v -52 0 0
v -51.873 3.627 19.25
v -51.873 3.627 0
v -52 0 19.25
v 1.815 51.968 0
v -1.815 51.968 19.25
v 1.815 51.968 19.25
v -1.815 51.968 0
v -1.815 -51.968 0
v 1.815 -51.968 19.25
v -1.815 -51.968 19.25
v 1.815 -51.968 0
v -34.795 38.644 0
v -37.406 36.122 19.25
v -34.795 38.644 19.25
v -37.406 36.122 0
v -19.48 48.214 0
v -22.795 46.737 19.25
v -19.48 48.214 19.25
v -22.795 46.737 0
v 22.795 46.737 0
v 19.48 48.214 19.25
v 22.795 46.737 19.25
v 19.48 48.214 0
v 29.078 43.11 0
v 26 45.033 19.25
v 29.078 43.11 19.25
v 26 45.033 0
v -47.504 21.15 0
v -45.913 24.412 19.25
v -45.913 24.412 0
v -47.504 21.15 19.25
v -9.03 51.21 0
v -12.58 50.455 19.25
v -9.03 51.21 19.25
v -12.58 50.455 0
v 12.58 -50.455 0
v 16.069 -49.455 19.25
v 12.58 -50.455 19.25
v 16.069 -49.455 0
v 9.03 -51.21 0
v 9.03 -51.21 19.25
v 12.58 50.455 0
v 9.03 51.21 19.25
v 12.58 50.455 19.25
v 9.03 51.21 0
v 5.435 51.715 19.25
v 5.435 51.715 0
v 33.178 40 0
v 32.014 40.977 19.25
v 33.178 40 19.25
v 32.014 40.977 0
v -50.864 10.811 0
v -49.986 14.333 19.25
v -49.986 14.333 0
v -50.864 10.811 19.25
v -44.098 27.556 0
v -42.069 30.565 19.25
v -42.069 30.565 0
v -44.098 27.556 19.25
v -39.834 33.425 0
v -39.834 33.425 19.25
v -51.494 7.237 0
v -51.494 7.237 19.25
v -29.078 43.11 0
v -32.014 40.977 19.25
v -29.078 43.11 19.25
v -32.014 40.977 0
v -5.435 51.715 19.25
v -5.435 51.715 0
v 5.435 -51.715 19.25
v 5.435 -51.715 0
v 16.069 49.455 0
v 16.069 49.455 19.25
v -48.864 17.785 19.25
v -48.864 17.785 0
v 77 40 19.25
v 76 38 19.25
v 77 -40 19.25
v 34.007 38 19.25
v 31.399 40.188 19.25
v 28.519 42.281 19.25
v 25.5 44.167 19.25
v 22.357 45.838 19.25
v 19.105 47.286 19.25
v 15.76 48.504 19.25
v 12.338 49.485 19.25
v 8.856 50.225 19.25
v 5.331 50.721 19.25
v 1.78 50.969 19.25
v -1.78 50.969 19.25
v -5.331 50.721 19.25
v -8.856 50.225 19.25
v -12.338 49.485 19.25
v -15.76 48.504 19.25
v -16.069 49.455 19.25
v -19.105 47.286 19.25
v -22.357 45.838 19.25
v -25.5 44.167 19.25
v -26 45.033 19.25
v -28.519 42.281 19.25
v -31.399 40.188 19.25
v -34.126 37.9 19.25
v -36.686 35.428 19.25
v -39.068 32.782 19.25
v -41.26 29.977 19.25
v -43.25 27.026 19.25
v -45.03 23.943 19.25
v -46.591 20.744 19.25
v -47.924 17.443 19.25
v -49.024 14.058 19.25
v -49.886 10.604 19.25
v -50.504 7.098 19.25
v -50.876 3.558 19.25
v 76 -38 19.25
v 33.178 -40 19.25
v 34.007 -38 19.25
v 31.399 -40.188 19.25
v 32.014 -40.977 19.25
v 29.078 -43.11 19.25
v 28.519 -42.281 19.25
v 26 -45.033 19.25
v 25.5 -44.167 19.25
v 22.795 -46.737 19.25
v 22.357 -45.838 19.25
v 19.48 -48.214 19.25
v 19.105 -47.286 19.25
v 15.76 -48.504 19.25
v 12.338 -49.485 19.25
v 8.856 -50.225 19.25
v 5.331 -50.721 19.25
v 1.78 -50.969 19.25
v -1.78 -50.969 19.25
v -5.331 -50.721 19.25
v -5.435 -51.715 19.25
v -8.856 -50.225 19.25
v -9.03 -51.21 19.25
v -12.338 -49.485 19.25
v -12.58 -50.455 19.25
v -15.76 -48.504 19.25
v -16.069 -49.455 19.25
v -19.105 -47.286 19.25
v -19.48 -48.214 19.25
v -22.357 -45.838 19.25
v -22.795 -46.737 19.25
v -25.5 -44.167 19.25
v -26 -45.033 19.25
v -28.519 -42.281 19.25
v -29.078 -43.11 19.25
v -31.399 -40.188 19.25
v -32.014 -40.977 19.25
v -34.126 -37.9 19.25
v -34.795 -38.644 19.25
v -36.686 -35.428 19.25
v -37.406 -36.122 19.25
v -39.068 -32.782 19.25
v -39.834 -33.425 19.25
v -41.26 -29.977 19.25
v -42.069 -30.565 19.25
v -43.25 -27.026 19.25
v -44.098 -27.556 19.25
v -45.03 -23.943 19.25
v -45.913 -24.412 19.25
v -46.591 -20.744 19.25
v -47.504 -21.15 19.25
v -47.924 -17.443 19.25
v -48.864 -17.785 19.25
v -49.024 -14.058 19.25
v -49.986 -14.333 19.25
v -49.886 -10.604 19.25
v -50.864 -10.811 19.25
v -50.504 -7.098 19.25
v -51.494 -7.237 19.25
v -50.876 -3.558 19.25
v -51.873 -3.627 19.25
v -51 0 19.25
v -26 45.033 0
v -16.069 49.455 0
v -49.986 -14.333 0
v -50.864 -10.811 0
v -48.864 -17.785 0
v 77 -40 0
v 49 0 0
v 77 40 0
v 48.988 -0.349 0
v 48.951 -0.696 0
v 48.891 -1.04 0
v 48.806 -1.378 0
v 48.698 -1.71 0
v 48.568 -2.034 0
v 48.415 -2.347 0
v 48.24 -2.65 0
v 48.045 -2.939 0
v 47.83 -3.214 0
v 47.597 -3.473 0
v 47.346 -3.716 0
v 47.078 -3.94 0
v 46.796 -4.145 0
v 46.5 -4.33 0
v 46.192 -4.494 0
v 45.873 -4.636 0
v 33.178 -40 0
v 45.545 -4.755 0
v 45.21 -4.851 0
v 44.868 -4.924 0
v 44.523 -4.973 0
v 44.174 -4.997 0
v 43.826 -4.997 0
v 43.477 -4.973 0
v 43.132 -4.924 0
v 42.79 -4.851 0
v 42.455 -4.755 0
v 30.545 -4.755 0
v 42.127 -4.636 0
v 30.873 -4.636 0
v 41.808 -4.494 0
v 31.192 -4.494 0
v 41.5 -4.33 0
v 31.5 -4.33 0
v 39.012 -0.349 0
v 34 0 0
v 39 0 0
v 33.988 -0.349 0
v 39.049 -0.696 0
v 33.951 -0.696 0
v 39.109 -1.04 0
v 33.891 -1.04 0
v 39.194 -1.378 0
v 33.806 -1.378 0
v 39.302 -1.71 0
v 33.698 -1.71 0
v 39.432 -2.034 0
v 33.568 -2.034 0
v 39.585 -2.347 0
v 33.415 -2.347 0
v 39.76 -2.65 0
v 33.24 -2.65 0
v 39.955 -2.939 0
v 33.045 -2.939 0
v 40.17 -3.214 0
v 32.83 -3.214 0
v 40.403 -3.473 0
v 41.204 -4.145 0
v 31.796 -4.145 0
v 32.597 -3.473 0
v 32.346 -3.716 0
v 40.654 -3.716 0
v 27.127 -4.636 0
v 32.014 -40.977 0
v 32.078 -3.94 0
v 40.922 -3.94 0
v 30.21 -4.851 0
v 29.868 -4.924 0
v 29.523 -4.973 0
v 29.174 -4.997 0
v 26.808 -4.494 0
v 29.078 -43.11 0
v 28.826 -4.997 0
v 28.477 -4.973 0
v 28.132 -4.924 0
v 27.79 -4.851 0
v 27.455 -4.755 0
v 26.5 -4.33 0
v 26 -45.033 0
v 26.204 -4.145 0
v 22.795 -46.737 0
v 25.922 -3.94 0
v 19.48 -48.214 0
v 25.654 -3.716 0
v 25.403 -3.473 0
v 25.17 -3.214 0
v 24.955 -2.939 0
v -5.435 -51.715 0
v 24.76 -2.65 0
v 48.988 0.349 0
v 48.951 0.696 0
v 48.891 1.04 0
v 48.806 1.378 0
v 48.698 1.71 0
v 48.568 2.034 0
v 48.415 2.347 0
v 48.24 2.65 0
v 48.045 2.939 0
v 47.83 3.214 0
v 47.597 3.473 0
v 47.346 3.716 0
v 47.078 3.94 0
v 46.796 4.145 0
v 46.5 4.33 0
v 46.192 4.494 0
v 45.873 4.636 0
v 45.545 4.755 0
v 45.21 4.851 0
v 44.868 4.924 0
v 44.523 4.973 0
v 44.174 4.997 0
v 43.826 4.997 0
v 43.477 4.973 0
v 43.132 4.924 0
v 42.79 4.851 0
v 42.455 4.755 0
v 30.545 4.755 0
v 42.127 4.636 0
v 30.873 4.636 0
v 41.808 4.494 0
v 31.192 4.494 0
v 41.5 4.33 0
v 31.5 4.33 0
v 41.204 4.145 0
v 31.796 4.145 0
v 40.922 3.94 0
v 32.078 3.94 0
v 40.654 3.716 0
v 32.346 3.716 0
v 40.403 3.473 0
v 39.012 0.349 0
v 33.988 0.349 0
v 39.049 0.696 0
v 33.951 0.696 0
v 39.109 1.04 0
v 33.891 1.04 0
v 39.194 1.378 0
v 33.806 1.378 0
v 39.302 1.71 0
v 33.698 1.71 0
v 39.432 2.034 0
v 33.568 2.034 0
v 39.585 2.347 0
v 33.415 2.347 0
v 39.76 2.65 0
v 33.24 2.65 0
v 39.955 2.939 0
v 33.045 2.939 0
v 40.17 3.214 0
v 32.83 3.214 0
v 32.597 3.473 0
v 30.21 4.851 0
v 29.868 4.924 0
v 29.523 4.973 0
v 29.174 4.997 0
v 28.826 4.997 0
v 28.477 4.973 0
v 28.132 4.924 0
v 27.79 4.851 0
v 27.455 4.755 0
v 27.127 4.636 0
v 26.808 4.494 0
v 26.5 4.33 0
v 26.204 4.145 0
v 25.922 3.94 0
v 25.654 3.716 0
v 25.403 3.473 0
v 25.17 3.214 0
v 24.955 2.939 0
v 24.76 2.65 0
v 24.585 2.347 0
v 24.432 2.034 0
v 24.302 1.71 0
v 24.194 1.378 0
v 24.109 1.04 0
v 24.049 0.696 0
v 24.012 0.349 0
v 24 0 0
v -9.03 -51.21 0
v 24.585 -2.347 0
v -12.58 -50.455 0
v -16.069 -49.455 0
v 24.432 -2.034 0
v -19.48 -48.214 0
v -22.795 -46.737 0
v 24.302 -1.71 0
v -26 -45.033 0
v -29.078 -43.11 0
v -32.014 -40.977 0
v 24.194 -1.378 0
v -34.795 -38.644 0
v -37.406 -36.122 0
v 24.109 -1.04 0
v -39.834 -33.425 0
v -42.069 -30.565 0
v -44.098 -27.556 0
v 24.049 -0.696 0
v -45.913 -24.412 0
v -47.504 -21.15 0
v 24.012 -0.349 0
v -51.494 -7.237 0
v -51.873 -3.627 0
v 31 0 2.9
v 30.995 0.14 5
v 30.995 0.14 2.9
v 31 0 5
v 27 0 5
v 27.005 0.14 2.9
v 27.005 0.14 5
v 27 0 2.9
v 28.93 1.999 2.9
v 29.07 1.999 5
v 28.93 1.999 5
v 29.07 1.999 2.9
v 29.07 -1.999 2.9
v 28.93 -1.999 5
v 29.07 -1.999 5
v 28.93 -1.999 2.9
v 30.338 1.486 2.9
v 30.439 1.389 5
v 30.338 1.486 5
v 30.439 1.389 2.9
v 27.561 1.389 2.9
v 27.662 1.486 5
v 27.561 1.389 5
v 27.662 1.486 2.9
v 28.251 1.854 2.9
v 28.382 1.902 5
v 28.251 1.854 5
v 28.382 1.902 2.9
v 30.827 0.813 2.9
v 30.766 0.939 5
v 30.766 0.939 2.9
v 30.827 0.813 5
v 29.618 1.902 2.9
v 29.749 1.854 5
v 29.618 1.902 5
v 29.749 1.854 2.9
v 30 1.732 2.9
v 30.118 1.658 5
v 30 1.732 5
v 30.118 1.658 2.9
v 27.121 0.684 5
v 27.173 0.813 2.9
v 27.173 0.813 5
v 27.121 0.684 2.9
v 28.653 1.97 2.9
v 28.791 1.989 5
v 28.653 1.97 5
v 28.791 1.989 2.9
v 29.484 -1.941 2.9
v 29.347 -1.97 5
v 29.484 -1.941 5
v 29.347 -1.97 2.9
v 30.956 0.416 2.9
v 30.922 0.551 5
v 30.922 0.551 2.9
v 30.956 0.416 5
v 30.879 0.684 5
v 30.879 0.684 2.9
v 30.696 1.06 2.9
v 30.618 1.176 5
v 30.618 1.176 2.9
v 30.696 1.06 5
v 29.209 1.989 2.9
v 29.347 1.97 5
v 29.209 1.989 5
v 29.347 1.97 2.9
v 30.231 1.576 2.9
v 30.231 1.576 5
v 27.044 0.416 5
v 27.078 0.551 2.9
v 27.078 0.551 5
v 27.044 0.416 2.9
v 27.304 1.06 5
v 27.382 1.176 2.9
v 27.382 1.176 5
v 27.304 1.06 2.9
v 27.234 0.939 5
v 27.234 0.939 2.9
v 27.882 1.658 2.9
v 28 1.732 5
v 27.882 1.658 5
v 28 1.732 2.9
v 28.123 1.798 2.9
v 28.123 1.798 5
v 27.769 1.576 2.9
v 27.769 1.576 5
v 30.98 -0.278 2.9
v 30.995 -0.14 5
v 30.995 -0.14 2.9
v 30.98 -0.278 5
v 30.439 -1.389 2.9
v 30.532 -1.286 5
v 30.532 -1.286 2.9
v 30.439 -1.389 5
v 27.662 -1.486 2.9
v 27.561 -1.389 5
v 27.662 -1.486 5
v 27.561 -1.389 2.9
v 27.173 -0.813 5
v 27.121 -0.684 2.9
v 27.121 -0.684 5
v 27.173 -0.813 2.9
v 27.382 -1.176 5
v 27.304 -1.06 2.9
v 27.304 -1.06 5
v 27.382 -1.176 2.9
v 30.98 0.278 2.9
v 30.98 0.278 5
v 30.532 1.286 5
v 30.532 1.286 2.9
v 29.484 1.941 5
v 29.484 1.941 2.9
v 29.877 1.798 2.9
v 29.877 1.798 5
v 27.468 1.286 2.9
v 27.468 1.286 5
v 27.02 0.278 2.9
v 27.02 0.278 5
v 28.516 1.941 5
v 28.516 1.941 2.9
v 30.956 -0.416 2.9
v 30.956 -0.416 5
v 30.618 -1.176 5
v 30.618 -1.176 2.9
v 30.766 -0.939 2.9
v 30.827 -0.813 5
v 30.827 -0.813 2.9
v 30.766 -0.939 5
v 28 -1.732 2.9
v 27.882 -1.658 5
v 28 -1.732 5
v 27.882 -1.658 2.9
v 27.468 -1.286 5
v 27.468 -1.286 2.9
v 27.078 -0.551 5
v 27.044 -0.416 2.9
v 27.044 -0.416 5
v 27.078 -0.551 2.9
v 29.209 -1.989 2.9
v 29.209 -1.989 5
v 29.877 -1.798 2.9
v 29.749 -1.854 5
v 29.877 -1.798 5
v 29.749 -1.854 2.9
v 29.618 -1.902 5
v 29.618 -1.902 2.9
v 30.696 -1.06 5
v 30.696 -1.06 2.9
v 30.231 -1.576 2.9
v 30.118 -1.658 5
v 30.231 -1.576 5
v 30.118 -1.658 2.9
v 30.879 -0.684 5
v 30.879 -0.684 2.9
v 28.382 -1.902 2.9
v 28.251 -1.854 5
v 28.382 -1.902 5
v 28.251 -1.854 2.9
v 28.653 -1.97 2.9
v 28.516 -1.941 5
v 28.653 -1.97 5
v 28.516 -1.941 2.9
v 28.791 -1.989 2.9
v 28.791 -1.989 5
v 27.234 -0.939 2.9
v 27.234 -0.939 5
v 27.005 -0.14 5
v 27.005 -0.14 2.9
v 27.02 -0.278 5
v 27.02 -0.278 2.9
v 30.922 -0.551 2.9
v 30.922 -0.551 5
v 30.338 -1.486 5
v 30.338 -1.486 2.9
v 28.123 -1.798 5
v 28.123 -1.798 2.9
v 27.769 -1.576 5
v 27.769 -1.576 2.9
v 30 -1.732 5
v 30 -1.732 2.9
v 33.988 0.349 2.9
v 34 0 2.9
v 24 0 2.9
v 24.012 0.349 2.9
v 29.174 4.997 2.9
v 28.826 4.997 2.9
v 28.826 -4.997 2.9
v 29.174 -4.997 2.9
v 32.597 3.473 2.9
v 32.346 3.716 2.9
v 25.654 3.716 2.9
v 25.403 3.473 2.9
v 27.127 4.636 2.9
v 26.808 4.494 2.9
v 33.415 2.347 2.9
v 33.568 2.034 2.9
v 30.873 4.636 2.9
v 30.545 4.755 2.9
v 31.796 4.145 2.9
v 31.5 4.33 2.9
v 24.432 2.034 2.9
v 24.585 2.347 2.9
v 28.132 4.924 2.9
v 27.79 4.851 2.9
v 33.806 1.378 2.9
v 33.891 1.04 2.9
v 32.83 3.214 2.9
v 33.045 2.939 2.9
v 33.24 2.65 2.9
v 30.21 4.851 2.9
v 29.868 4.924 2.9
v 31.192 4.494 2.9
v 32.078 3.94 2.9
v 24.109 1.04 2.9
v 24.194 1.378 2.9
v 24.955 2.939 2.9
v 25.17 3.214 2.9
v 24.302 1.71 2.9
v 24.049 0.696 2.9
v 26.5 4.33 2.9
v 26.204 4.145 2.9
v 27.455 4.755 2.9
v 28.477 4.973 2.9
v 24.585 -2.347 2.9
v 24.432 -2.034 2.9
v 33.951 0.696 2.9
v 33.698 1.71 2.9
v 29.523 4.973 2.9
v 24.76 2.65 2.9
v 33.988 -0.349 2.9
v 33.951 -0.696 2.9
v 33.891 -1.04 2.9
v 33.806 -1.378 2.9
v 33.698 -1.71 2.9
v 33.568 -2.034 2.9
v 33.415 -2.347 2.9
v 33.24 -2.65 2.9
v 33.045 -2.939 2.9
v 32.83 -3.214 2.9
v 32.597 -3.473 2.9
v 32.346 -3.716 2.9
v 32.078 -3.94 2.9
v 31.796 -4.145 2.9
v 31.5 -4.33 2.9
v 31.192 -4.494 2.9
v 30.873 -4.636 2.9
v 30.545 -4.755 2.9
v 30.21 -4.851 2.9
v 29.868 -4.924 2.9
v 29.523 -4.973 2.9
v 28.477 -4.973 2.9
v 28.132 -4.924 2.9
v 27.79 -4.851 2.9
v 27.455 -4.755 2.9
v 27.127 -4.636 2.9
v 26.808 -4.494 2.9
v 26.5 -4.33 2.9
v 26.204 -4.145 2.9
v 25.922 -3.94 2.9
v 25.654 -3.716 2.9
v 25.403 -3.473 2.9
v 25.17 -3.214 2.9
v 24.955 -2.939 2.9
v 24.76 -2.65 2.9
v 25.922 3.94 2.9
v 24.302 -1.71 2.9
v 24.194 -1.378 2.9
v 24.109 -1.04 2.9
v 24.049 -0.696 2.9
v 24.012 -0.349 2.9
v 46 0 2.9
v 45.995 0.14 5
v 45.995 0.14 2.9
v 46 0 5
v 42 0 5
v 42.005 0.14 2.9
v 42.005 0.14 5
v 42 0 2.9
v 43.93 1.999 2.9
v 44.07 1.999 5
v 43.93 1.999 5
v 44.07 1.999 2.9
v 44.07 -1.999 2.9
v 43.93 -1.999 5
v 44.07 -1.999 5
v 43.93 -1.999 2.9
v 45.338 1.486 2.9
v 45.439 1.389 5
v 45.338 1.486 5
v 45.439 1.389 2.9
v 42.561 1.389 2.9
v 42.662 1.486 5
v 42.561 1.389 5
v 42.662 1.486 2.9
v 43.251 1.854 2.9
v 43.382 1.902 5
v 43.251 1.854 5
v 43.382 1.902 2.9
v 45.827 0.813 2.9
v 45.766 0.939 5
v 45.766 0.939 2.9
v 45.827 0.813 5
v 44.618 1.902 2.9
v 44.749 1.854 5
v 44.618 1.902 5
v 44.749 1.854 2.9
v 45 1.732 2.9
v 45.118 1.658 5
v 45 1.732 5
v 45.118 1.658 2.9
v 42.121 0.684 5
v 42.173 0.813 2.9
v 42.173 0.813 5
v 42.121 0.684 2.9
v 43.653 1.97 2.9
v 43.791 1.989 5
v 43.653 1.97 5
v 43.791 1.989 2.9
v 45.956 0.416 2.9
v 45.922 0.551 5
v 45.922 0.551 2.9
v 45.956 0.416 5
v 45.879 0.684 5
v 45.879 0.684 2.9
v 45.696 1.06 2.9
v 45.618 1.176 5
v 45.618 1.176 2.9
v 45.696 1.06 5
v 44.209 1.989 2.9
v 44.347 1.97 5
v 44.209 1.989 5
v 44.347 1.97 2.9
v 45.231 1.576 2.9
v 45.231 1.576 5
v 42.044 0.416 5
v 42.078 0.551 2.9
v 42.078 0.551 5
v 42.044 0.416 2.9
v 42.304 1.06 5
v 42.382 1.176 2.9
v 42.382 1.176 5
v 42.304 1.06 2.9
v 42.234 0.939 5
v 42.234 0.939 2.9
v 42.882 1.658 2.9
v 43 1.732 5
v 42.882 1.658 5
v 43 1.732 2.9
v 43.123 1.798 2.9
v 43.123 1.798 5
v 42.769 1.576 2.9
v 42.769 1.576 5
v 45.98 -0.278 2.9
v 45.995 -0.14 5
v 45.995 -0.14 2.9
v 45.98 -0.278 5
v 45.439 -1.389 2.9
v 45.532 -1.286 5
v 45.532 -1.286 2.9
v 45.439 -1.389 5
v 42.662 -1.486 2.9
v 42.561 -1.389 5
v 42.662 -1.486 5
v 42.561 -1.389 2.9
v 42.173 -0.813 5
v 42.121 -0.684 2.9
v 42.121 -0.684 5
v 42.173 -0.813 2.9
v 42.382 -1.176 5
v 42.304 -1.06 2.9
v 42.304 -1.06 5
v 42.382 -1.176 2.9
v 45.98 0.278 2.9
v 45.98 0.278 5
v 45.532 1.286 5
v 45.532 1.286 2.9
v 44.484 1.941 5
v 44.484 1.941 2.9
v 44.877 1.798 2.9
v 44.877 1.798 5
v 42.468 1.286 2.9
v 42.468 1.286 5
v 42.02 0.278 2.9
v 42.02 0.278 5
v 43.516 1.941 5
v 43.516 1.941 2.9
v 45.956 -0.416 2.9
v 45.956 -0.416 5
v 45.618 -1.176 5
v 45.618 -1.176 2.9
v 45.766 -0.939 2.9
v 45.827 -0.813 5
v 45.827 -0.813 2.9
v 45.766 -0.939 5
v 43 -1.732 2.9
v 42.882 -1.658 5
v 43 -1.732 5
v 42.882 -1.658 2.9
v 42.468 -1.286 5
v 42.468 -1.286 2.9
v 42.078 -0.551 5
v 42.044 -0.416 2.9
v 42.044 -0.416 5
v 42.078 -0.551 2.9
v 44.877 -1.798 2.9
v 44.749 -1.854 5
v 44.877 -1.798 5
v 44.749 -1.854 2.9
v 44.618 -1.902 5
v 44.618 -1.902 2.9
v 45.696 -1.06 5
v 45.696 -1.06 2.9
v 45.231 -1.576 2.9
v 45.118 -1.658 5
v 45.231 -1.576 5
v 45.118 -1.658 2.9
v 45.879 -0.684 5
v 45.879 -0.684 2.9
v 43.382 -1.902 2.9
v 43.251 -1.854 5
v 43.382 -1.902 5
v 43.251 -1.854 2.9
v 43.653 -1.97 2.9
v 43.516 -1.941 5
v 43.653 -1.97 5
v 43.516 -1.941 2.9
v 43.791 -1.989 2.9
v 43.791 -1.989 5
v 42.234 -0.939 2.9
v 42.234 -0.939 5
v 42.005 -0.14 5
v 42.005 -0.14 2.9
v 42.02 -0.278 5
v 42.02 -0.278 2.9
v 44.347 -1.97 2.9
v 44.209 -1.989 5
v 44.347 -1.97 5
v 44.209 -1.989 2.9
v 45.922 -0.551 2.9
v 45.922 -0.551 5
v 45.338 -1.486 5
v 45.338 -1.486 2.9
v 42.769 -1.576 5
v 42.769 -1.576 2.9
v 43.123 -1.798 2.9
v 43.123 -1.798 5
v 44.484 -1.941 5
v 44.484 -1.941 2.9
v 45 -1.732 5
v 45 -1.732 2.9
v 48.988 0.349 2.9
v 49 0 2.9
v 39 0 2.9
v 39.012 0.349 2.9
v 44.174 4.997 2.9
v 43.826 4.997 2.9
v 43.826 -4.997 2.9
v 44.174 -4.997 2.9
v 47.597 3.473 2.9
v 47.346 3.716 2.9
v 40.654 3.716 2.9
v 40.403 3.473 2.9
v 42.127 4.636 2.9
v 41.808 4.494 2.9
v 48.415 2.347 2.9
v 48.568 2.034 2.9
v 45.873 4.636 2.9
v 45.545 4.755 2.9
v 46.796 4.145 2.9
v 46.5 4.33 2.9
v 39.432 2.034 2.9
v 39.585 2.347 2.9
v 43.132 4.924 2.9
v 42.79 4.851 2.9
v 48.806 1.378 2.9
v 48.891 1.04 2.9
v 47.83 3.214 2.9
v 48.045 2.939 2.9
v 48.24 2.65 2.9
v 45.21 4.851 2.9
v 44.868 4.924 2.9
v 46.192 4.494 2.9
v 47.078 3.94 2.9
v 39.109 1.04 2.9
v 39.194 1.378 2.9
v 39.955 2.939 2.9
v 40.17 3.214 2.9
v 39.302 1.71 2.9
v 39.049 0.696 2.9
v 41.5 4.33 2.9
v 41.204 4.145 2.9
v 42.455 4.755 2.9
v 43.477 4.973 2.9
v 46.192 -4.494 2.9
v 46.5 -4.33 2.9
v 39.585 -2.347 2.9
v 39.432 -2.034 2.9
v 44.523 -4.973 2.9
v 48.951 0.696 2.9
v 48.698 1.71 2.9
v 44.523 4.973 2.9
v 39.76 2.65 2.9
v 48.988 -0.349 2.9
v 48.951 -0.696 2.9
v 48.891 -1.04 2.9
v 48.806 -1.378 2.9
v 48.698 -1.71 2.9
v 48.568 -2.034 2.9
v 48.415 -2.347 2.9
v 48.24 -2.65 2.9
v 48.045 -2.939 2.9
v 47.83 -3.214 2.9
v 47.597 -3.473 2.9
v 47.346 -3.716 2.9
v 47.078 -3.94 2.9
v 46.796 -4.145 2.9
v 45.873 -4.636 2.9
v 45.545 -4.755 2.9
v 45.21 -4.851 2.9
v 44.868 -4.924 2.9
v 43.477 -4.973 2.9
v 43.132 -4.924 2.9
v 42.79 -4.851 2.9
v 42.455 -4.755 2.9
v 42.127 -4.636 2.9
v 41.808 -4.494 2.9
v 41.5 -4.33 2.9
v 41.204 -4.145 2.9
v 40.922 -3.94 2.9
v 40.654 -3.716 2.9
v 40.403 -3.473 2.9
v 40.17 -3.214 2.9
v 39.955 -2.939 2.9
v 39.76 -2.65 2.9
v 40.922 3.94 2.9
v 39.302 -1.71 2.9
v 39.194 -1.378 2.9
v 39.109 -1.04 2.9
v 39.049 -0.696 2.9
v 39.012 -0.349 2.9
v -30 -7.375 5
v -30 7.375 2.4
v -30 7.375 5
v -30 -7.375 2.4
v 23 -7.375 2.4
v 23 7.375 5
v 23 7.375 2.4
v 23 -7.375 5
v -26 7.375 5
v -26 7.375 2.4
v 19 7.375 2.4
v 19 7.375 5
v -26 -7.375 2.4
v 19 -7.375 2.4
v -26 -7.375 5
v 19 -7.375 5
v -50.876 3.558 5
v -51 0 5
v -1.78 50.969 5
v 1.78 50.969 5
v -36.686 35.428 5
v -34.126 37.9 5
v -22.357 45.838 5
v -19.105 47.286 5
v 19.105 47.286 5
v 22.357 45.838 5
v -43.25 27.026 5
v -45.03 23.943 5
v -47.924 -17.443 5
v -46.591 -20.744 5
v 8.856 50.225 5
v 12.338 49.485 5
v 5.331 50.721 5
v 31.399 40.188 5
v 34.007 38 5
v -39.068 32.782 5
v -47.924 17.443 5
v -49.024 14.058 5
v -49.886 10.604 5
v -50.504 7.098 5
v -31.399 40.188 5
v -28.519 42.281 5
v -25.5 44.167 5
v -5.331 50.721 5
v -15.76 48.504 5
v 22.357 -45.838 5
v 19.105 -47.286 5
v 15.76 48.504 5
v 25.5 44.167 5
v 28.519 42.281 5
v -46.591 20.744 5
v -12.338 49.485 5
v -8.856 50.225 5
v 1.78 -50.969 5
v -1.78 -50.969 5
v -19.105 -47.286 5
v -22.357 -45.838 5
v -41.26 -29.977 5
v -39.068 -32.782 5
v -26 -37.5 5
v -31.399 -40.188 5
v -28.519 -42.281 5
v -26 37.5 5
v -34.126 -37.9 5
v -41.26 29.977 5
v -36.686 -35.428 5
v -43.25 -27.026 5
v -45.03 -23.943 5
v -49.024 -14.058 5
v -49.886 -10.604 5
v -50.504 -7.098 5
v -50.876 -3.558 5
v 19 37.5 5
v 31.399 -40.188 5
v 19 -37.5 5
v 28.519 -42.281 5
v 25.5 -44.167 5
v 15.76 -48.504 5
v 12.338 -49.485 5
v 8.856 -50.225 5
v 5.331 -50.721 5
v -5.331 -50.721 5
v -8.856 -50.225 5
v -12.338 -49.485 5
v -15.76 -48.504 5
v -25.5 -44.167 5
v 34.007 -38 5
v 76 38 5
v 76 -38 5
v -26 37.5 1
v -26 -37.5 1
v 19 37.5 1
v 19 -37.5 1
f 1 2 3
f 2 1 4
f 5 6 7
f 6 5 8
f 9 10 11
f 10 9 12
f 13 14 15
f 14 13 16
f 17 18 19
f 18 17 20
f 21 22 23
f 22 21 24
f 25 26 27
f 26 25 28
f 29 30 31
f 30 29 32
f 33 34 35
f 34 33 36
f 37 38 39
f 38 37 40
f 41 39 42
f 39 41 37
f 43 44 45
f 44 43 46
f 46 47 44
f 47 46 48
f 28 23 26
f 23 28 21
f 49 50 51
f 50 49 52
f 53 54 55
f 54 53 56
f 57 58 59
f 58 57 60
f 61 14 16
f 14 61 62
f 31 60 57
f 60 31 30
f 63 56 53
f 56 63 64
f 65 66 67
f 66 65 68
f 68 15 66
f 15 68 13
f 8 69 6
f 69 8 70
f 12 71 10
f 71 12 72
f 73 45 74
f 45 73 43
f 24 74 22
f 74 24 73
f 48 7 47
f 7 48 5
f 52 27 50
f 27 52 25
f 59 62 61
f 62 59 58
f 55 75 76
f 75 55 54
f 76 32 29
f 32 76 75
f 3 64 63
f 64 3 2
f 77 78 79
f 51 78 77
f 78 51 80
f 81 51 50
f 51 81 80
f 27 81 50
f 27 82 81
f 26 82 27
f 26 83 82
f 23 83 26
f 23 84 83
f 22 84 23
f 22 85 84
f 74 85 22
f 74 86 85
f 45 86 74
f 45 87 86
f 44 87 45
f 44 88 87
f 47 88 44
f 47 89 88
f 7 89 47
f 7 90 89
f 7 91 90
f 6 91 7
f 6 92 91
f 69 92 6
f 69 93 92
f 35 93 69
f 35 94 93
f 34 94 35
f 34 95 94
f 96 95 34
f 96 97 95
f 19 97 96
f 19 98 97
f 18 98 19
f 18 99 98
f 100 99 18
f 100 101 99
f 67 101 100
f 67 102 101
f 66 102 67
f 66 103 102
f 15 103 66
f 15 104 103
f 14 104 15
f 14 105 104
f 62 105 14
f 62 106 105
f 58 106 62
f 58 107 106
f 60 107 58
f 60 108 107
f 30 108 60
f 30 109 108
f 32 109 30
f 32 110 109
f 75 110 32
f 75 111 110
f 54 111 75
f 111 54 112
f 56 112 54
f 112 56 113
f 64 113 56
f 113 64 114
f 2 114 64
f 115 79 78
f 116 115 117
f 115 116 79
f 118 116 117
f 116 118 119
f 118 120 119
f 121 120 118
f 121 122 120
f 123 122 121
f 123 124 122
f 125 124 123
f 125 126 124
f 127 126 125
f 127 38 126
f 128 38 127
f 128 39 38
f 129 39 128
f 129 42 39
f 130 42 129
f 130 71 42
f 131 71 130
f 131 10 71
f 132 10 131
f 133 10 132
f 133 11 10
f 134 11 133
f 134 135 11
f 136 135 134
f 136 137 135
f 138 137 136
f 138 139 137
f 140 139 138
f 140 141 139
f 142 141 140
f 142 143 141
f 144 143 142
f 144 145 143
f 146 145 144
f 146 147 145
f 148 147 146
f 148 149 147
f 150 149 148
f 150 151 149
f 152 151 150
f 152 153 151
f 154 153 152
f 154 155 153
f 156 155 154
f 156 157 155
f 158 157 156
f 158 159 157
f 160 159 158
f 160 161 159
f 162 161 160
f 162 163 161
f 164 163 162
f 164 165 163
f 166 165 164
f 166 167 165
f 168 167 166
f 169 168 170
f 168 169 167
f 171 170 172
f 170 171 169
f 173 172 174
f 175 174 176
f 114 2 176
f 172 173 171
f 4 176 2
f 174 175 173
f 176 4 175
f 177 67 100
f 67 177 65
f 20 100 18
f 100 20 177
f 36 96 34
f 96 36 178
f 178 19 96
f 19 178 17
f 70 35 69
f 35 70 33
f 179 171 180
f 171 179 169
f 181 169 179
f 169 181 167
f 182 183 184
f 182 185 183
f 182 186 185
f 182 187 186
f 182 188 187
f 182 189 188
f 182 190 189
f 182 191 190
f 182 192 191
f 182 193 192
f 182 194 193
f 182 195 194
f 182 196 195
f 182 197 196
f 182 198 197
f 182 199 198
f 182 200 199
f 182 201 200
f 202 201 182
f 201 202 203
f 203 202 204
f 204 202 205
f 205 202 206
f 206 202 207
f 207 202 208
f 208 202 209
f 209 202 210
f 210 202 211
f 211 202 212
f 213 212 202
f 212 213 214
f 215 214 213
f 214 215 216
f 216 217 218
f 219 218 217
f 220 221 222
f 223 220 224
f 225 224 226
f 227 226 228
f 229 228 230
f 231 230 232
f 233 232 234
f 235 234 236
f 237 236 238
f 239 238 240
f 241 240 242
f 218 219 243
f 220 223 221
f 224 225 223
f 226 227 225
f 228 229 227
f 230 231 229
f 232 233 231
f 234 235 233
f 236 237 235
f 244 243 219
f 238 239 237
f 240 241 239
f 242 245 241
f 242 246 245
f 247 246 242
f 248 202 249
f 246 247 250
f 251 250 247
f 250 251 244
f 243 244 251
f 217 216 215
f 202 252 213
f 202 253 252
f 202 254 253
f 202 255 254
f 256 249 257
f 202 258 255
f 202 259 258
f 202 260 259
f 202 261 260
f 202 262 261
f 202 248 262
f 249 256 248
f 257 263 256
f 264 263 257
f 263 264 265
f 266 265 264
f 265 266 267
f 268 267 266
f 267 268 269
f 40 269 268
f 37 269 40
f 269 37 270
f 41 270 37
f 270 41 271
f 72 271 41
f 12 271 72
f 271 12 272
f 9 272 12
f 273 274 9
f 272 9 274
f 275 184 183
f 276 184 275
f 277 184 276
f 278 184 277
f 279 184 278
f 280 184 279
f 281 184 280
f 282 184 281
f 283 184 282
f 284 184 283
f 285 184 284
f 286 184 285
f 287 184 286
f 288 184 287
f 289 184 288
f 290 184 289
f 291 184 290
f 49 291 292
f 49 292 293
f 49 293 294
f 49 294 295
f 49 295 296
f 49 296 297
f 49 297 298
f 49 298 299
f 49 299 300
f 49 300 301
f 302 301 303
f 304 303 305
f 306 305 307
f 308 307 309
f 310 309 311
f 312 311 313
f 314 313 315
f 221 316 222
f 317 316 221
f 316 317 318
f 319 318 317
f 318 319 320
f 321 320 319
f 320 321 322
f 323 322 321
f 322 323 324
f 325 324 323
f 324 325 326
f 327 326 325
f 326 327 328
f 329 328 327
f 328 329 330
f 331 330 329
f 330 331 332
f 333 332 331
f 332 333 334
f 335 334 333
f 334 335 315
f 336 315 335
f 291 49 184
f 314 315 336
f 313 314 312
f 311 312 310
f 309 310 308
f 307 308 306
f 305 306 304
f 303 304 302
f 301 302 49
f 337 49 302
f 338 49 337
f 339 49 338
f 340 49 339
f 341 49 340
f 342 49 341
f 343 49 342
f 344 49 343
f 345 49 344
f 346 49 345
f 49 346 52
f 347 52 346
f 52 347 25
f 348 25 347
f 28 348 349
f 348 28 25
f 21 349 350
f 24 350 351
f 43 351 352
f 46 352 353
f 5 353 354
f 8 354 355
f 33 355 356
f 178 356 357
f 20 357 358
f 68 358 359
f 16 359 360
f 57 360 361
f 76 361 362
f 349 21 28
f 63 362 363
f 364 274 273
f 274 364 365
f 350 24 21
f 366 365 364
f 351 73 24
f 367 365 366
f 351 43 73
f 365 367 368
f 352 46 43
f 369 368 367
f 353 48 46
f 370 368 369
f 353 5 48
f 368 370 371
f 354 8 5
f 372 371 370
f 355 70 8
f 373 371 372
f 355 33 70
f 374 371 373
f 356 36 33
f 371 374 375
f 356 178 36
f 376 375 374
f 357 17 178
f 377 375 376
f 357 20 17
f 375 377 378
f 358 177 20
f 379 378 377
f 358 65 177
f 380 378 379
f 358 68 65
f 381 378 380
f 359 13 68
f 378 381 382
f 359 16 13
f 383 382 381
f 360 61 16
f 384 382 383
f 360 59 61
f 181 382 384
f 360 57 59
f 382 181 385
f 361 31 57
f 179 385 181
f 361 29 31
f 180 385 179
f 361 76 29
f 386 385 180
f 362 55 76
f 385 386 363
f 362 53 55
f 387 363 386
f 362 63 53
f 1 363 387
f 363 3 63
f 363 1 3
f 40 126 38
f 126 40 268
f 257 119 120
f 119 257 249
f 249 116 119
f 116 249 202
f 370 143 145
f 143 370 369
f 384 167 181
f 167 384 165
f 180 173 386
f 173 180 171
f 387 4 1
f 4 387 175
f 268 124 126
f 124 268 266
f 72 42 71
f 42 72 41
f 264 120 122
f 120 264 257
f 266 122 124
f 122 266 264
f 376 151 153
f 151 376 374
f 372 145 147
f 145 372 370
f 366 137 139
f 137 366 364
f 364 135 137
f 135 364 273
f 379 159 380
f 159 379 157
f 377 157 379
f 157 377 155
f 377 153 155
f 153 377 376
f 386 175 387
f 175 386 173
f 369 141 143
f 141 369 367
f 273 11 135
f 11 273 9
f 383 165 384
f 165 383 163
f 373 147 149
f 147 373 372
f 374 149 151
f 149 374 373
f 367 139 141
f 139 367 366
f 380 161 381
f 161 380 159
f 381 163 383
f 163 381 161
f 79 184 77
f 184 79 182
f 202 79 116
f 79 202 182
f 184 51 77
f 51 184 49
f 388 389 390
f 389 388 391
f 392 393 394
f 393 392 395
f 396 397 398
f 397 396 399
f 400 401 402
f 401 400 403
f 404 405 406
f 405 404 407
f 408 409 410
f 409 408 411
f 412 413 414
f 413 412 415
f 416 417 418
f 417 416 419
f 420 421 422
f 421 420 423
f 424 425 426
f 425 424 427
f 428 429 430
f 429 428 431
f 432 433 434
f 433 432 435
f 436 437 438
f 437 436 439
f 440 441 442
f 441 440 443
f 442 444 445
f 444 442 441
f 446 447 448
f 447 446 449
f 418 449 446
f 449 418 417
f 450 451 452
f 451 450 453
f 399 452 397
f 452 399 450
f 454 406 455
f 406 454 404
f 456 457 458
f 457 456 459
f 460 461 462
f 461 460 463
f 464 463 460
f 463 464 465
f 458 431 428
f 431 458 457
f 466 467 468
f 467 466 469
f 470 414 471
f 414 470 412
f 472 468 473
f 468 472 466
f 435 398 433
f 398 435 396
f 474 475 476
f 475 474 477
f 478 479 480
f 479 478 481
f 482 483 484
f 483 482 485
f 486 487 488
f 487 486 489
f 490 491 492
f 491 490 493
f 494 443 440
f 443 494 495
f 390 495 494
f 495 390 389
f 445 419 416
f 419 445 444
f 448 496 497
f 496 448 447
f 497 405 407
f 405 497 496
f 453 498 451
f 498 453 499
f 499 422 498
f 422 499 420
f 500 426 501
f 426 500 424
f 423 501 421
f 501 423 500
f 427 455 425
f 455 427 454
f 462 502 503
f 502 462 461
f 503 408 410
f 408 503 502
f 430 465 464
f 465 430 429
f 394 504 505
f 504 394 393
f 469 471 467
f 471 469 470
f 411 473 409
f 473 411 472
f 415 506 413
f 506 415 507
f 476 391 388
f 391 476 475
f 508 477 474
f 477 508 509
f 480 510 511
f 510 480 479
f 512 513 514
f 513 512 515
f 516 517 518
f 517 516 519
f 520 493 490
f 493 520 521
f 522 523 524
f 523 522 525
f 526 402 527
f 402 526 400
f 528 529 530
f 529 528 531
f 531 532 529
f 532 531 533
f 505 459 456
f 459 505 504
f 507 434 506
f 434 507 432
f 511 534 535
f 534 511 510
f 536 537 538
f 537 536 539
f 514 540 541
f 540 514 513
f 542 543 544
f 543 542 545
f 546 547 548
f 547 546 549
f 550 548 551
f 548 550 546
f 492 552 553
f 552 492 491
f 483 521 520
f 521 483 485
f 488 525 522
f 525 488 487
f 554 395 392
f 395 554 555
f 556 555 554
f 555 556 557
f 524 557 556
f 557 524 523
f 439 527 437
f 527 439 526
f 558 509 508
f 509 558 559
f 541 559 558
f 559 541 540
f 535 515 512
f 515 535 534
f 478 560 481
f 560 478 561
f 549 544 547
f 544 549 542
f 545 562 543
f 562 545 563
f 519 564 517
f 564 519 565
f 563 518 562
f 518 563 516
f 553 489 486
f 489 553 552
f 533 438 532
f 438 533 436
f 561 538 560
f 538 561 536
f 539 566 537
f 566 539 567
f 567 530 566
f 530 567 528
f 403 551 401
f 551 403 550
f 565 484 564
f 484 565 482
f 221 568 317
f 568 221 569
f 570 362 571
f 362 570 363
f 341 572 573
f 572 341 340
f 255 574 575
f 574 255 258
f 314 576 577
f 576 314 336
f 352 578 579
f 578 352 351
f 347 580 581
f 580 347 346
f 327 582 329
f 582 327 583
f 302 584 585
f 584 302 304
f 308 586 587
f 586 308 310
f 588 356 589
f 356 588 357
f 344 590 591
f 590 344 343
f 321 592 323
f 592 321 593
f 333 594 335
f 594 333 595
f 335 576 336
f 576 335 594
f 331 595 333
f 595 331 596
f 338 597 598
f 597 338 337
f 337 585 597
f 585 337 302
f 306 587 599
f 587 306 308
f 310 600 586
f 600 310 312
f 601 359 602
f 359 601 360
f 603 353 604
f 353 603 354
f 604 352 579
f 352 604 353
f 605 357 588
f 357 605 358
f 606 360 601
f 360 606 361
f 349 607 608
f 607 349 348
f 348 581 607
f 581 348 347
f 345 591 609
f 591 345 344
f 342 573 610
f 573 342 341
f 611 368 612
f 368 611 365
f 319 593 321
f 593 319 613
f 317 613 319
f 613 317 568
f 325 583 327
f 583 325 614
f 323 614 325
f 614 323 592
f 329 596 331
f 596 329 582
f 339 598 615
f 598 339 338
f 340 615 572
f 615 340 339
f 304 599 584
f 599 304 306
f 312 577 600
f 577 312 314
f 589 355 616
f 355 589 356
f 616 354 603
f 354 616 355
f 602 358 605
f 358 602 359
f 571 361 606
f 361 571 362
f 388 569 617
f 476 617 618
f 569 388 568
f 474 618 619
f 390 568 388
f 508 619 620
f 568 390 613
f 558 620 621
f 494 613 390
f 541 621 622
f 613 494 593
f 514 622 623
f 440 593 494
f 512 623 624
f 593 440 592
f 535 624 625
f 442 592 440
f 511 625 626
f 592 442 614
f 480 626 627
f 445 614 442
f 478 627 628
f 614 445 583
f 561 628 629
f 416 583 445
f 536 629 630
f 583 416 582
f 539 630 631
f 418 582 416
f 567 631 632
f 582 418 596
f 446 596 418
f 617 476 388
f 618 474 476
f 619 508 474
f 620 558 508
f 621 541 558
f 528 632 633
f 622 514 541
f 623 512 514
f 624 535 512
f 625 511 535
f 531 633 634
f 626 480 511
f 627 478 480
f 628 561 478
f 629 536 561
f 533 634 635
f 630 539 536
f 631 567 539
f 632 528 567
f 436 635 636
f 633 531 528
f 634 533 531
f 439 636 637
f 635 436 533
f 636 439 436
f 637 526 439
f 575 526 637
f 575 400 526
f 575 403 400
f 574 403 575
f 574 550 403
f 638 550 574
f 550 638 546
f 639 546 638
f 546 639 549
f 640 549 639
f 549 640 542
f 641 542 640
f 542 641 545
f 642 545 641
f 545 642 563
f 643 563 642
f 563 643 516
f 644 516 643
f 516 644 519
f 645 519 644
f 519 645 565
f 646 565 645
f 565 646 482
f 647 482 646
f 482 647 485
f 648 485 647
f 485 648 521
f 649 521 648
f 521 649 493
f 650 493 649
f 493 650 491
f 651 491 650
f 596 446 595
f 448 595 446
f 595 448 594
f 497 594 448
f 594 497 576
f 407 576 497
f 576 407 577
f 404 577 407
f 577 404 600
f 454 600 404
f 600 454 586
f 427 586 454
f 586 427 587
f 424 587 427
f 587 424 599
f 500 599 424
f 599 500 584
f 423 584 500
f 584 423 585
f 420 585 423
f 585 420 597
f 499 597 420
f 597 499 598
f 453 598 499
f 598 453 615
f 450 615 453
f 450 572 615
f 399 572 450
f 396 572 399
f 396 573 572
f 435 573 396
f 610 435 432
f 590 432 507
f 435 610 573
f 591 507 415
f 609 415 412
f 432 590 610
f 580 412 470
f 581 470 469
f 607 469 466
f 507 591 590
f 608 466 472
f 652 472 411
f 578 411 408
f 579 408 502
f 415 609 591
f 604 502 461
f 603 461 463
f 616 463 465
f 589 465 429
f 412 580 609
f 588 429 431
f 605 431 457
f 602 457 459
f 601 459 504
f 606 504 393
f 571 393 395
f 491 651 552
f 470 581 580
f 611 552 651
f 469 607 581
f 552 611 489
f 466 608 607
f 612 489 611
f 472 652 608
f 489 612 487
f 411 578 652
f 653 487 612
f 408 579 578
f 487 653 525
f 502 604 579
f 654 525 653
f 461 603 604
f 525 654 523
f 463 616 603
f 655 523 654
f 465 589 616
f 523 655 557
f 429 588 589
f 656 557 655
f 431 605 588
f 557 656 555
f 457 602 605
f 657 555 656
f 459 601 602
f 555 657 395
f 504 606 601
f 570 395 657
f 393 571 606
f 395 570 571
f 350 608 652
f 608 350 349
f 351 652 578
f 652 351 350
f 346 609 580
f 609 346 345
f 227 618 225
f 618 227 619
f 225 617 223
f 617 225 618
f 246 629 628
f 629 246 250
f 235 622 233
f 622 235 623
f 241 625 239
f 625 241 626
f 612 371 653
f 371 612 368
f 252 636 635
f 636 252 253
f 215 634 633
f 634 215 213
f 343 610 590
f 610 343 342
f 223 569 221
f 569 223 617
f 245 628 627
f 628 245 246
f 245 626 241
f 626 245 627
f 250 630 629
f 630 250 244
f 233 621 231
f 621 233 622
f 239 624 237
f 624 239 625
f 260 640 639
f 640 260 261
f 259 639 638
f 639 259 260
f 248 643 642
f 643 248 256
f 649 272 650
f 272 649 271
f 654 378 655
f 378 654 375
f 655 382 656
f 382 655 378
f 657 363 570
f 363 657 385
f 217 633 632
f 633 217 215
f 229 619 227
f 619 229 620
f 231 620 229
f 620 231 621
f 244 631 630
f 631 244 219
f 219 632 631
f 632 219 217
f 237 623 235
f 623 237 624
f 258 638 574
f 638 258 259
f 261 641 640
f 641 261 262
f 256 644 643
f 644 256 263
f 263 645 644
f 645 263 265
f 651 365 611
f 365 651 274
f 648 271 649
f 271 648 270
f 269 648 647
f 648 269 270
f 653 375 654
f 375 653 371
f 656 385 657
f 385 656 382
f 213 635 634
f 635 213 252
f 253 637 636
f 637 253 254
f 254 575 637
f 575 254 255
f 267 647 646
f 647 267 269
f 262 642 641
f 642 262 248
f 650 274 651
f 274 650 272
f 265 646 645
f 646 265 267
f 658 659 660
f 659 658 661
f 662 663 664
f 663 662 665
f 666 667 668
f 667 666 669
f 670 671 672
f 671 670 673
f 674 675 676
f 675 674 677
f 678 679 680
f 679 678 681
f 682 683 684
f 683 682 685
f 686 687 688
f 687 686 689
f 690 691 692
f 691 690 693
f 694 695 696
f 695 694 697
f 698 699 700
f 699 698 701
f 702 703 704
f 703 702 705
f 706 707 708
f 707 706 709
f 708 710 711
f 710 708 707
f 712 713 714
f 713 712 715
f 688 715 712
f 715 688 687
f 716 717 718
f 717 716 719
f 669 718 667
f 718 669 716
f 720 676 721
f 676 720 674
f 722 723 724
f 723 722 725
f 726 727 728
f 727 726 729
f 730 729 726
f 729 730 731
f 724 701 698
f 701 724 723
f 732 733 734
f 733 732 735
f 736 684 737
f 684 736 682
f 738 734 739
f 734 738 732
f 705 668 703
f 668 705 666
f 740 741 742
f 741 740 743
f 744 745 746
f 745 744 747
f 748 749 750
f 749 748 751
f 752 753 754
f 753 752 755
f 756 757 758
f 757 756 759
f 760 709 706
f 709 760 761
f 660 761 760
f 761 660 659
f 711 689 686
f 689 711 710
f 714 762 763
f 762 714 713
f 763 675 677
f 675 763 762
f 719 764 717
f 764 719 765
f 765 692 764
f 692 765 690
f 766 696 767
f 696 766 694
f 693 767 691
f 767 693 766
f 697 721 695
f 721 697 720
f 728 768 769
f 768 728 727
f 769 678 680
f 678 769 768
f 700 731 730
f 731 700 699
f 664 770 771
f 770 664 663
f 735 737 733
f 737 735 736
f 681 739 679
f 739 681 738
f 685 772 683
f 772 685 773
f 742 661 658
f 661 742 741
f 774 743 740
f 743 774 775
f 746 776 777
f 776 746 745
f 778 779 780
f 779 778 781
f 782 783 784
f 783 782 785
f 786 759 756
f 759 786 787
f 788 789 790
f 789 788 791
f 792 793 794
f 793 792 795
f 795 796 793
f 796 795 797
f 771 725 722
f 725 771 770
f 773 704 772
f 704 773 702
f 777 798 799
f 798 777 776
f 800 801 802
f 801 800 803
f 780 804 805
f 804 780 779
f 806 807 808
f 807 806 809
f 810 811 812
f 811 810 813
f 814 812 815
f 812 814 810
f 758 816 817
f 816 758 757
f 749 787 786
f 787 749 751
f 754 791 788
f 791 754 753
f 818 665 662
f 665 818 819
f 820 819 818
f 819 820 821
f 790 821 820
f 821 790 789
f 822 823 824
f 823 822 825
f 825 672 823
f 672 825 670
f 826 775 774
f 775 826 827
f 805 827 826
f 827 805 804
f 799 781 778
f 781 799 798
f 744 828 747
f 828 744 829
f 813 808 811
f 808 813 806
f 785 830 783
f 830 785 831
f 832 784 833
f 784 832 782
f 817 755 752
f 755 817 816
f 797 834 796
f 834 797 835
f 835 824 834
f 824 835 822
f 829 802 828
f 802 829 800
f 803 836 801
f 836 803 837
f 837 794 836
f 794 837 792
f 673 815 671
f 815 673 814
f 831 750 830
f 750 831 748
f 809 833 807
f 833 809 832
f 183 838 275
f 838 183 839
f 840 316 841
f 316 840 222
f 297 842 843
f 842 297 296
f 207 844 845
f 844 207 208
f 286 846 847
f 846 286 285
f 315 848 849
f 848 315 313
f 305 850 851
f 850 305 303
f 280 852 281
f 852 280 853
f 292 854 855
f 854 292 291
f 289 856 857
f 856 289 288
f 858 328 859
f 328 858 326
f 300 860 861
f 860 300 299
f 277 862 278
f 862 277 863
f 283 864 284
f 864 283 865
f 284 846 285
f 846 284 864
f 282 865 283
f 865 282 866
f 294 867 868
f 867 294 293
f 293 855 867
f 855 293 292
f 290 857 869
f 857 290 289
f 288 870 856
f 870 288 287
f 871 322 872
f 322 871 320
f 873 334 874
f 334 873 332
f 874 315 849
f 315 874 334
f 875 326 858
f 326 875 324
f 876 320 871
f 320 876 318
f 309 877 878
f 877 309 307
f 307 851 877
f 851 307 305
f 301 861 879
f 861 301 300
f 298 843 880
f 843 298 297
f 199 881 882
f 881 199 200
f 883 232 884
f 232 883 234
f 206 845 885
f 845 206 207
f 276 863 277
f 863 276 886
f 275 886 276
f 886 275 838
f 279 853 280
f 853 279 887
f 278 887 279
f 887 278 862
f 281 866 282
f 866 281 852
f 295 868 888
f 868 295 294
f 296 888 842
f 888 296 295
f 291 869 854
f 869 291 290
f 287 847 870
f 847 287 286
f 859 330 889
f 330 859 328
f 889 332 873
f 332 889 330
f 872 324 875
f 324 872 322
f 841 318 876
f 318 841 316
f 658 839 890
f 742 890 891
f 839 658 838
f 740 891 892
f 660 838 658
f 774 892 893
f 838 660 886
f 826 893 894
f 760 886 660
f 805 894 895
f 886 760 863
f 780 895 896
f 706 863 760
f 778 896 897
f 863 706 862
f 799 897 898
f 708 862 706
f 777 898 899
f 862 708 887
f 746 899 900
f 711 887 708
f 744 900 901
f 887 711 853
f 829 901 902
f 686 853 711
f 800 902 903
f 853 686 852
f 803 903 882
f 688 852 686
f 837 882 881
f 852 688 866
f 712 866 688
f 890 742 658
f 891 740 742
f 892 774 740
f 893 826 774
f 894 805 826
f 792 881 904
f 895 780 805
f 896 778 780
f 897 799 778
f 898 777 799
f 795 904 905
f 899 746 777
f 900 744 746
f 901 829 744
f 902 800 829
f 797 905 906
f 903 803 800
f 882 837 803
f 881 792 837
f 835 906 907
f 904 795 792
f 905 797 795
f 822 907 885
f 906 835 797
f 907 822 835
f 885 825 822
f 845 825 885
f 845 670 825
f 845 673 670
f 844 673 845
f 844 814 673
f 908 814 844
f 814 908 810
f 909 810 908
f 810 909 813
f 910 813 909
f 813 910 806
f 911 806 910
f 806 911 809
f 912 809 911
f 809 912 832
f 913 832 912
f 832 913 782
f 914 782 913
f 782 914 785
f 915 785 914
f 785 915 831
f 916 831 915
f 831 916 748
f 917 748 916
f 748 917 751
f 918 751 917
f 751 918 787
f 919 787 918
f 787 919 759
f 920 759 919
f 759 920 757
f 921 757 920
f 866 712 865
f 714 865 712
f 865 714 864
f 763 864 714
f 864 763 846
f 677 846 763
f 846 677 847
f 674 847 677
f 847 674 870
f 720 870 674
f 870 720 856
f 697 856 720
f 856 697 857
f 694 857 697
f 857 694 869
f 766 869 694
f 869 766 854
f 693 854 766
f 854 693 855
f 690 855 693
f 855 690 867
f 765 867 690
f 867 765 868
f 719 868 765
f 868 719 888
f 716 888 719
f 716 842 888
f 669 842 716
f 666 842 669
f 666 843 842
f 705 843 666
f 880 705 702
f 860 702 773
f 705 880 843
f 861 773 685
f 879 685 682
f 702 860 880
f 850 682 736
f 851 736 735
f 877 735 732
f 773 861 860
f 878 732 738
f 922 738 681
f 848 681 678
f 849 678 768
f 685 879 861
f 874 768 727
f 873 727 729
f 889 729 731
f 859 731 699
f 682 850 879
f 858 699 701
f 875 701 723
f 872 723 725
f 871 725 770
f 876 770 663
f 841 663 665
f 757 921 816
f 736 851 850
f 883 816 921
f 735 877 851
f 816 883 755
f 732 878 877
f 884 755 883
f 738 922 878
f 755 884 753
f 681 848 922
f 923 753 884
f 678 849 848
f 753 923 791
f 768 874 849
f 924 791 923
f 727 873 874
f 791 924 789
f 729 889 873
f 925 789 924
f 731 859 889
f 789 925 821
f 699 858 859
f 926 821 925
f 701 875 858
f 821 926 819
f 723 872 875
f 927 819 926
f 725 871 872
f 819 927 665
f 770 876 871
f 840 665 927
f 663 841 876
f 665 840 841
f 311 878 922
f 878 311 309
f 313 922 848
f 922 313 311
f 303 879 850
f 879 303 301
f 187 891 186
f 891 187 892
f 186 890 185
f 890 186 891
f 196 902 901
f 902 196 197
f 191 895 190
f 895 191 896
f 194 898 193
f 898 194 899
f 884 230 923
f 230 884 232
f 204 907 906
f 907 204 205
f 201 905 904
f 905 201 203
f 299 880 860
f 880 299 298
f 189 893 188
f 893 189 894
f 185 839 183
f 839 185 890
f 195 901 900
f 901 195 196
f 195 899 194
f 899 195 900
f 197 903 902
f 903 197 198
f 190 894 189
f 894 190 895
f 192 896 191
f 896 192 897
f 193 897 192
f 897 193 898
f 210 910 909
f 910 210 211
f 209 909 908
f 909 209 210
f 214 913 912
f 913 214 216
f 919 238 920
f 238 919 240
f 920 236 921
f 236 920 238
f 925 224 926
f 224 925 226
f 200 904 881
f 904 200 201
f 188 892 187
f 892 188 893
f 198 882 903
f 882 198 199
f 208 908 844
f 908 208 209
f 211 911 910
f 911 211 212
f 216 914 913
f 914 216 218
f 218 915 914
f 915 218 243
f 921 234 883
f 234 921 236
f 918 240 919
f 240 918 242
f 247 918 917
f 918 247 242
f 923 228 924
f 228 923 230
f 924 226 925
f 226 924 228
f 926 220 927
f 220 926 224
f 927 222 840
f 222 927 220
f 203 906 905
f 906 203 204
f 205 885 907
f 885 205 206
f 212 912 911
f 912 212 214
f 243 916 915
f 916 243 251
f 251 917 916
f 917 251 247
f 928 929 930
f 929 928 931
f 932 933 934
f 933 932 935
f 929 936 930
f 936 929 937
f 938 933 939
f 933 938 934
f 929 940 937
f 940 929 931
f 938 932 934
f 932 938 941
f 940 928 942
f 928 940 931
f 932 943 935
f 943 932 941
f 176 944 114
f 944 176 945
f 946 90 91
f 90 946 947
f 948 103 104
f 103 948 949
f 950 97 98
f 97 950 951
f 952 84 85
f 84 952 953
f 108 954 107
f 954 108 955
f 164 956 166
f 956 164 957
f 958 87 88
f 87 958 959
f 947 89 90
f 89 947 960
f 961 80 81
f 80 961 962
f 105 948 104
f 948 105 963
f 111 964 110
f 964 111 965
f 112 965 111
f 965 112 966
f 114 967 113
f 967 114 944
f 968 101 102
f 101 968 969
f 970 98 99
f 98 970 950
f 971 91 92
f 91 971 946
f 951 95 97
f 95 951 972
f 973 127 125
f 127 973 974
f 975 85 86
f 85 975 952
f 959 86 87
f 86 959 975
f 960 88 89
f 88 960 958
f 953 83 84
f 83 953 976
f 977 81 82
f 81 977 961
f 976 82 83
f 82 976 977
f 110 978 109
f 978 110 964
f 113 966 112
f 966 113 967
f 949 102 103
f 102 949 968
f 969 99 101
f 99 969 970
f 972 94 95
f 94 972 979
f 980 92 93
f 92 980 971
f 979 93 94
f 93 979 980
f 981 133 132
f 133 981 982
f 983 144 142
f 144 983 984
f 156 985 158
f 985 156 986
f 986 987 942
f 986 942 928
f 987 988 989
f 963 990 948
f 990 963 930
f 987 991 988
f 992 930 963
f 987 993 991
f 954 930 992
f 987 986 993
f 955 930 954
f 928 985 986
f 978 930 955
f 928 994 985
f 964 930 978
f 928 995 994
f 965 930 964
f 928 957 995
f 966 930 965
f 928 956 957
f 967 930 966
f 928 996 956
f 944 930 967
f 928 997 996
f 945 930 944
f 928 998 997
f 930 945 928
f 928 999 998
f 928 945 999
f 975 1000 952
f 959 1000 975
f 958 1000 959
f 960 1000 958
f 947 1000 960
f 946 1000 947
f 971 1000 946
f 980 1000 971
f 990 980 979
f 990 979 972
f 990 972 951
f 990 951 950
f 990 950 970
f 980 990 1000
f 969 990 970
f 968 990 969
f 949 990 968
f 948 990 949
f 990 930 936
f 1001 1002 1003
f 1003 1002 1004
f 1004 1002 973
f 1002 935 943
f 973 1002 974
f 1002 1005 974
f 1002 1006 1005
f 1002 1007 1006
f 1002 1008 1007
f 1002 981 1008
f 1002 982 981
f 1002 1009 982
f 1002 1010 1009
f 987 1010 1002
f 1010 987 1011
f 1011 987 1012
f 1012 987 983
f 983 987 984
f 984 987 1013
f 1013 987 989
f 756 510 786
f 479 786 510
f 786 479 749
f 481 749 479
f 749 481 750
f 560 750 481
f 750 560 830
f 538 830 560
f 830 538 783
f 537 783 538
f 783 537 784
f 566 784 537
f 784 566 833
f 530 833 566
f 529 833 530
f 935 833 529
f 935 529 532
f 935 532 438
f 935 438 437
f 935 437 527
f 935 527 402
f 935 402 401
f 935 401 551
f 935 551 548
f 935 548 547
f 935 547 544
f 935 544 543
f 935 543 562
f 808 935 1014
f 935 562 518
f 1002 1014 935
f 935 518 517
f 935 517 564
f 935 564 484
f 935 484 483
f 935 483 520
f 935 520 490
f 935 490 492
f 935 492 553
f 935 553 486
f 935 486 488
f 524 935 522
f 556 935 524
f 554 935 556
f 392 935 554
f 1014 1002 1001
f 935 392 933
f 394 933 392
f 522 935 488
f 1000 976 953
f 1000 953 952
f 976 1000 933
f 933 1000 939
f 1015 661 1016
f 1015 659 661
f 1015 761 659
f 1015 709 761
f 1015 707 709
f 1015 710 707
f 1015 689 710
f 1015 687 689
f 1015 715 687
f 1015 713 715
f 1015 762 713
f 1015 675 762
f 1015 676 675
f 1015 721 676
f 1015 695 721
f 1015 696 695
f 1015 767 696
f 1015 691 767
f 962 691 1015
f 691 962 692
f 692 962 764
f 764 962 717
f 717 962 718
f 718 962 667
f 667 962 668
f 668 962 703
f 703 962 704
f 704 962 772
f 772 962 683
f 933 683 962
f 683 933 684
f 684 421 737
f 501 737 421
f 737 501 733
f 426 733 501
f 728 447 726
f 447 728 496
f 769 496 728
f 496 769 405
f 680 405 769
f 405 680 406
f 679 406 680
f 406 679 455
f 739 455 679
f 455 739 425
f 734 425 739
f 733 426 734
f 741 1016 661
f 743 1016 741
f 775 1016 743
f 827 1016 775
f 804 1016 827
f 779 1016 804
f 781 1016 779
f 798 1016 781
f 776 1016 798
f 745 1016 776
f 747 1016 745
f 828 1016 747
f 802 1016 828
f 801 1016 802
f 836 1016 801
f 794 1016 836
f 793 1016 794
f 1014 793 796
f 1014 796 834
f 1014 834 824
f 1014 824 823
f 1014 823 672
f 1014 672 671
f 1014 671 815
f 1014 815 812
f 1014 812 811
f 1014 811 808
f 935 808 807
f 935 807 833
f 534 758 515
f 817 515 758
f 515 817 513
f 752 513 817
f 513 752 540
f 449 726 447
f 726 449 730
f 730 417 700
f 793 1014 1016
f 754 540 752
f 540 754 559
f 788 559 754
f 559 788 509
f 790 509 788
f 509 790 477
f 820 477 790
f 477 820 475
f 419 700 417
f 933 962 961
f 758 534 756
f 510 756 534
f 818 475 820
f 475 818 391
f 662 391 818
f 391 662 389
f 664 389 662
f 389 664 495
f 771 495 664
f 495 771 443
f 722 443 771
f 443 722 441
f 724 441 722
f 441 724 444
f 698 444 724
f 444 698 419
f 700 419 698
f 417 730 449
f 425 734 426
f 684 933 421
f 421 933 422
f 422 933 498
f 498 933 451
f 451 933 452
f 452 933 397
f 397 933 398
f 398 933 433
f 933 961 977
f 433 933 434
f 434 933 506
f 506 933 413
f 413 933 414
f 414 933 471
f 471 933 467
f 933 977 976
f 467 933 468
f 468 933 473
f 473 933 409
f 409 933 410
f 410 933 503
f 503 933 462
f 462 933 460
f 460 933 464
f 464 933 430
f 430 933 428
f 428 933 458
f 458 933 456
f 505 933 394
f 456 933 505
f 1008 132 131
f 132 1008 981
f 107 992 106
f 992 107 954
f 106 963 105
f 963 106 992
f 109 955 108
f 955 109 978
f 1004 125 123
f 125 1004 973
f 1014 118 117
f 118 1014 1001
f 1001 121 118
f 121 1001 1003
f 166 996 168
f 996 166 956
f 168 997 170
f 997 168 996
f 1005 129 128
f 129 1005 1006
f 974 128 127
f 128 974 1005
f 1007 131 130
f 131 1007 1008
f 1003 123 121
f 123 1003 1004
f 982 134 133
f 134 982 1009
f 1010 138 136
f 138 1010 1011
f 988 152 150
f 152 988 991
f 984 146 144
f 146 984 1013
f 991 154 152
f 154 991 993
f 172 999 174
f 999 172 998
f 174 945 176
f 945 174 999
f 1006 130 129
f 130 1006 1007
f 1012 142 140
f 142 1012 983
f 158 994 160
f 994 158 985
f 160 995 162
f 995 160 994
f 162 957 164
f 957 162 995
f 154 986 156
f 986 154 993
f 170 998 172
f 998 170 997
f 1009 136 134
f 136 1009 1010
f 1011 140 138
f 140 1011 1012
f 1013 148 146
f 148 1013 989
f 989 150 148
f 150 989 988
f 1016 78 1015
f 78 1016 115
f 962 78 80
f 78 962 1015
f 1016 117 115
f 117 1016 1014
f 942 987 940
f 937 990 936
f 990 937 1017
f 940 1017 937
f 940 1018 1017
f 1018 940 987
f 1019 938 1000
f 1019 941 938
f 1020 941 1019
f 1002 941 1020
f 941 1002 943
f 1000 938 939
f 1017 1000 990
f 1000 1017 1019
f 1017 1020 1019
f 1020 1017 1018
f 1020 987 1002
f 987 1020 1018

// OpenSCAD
$fn = 90;
bottleDiameter = 100;
wallThickness = 2;
bottlePadding = 2;

loadcellHeight = 12.75;
loadcellWidth = 12.75;
loadcellLength = 80;


module showTop() {
    import("BottleBank.stl");
}

module QIReceiver() {
    color("Black", 50) {
        cube([45, 75,1]);
    }
}

module PhotonPcb() {
    translate([70,-10,8]) {
        rotate([0,-90,0]) {
            color("Blue", 50) {
                cube([45, 45, 17]);
            }
        }
    }
}

module loadCell() {

    
    translate([-30,-(loadcellWidth/2),-2]) {
        color("Gainsboro", 50) { 
            difference() {
                union() {
                    cube([loadcellLength, loadcellWidth, loadcellHeight]);
                    // strain gauge placement + goo
                    translate([(loadcellLength/2)-15,0,loadcellHeight]) {
                        cube([30,loadcellWidth,1]);
                    }
                    translate([(loadcellLength/2)-15,0,-1]) {
                        cube([30,loadcellWidth,1]);
                    }
                }
                union() {
                    translate([6, (12.75/2),0]) {
                        cylinder(d=4, h=13);
                    }
                    translate([21, (12.75/2),0]) {
                        cylinder(d=4, h=13);
                    }
                    
                    translate([59, (12.75/2),0]) {
                        cylinder(d=4, h=13);
                    }
                    translate([74, (12.75/2),0]) {
                        cylinder(d=4, h=13);
                    }
                }
            }
        }
    }
}

module base() {

baseFloorThickness = 5;
// Load cell sticks out 2mm from the bottle holder part.
h=baseFloorThickness+1.5 + loadcellHeight;
pcbBoxDepth = 45;
pcbBoxHeight = h;
    
    difference() {
        union() {
            cylinder(d=bottleDiameter + bottlePadding + wallThickness, h=h);
            translate([32, -40,0]) {
                cube([pcbBoxDepth,80, pcbBoxHeight]);
            }
        }
        union() {
            // Hollow out the cylidrical base.
            translate([0,0,baseFloorThickness]) {
                cylinder(d=bottleDiameter + bottlePadding, h=pcbBoxHeight+10);
            }
            // Hollow out the PCB Comparetment
            translate([31, -38, baseFloorThickness]) {
                cube([pcbBoxDepth,76, pcbBoxHeight-baseFloorThickness +0.1]);
            }
            
            // Holes for the Load Cell
            translate([-30,-(loadcellWidth/2)-1,-0.1]) {
                
                translate([0,0,baseFloorThickness-2.5]) {
                    #cube([53,loadcellWidth+2,3]);
                }
                
                //  bolt holes
                translate([59, (12.75/2)+1,0]) {
                    #cylinder(d=4, h=53);
                    translate([0,0,0]) {
                        // High enough to 
                        #cylinder(d=10, h=3);
                    }
                }
                translate([74, (12.75/2)+1,0]) {
                    cylinder(d=4, h=53);
                    translate([0,0,0]) {
                        #cylinder(d=10, h=3);
                    }
                }        
            }
            
            // Hollow out QI receier holder.
            translate([-26,-75/2,1]) {
               cube([45, 75,baseFloorThickness+1]);
            }
        }
    }
}

module showModels() {
    
    //PhotonPcb();
    
    translate([-26,-75/2,0.6]) {
        //QIReceiver();
    }
    
    // 7mm for 
    translate([0,0,7]) {
        //showTop();
        //loadCell();
    }

}

showModels();

base();
